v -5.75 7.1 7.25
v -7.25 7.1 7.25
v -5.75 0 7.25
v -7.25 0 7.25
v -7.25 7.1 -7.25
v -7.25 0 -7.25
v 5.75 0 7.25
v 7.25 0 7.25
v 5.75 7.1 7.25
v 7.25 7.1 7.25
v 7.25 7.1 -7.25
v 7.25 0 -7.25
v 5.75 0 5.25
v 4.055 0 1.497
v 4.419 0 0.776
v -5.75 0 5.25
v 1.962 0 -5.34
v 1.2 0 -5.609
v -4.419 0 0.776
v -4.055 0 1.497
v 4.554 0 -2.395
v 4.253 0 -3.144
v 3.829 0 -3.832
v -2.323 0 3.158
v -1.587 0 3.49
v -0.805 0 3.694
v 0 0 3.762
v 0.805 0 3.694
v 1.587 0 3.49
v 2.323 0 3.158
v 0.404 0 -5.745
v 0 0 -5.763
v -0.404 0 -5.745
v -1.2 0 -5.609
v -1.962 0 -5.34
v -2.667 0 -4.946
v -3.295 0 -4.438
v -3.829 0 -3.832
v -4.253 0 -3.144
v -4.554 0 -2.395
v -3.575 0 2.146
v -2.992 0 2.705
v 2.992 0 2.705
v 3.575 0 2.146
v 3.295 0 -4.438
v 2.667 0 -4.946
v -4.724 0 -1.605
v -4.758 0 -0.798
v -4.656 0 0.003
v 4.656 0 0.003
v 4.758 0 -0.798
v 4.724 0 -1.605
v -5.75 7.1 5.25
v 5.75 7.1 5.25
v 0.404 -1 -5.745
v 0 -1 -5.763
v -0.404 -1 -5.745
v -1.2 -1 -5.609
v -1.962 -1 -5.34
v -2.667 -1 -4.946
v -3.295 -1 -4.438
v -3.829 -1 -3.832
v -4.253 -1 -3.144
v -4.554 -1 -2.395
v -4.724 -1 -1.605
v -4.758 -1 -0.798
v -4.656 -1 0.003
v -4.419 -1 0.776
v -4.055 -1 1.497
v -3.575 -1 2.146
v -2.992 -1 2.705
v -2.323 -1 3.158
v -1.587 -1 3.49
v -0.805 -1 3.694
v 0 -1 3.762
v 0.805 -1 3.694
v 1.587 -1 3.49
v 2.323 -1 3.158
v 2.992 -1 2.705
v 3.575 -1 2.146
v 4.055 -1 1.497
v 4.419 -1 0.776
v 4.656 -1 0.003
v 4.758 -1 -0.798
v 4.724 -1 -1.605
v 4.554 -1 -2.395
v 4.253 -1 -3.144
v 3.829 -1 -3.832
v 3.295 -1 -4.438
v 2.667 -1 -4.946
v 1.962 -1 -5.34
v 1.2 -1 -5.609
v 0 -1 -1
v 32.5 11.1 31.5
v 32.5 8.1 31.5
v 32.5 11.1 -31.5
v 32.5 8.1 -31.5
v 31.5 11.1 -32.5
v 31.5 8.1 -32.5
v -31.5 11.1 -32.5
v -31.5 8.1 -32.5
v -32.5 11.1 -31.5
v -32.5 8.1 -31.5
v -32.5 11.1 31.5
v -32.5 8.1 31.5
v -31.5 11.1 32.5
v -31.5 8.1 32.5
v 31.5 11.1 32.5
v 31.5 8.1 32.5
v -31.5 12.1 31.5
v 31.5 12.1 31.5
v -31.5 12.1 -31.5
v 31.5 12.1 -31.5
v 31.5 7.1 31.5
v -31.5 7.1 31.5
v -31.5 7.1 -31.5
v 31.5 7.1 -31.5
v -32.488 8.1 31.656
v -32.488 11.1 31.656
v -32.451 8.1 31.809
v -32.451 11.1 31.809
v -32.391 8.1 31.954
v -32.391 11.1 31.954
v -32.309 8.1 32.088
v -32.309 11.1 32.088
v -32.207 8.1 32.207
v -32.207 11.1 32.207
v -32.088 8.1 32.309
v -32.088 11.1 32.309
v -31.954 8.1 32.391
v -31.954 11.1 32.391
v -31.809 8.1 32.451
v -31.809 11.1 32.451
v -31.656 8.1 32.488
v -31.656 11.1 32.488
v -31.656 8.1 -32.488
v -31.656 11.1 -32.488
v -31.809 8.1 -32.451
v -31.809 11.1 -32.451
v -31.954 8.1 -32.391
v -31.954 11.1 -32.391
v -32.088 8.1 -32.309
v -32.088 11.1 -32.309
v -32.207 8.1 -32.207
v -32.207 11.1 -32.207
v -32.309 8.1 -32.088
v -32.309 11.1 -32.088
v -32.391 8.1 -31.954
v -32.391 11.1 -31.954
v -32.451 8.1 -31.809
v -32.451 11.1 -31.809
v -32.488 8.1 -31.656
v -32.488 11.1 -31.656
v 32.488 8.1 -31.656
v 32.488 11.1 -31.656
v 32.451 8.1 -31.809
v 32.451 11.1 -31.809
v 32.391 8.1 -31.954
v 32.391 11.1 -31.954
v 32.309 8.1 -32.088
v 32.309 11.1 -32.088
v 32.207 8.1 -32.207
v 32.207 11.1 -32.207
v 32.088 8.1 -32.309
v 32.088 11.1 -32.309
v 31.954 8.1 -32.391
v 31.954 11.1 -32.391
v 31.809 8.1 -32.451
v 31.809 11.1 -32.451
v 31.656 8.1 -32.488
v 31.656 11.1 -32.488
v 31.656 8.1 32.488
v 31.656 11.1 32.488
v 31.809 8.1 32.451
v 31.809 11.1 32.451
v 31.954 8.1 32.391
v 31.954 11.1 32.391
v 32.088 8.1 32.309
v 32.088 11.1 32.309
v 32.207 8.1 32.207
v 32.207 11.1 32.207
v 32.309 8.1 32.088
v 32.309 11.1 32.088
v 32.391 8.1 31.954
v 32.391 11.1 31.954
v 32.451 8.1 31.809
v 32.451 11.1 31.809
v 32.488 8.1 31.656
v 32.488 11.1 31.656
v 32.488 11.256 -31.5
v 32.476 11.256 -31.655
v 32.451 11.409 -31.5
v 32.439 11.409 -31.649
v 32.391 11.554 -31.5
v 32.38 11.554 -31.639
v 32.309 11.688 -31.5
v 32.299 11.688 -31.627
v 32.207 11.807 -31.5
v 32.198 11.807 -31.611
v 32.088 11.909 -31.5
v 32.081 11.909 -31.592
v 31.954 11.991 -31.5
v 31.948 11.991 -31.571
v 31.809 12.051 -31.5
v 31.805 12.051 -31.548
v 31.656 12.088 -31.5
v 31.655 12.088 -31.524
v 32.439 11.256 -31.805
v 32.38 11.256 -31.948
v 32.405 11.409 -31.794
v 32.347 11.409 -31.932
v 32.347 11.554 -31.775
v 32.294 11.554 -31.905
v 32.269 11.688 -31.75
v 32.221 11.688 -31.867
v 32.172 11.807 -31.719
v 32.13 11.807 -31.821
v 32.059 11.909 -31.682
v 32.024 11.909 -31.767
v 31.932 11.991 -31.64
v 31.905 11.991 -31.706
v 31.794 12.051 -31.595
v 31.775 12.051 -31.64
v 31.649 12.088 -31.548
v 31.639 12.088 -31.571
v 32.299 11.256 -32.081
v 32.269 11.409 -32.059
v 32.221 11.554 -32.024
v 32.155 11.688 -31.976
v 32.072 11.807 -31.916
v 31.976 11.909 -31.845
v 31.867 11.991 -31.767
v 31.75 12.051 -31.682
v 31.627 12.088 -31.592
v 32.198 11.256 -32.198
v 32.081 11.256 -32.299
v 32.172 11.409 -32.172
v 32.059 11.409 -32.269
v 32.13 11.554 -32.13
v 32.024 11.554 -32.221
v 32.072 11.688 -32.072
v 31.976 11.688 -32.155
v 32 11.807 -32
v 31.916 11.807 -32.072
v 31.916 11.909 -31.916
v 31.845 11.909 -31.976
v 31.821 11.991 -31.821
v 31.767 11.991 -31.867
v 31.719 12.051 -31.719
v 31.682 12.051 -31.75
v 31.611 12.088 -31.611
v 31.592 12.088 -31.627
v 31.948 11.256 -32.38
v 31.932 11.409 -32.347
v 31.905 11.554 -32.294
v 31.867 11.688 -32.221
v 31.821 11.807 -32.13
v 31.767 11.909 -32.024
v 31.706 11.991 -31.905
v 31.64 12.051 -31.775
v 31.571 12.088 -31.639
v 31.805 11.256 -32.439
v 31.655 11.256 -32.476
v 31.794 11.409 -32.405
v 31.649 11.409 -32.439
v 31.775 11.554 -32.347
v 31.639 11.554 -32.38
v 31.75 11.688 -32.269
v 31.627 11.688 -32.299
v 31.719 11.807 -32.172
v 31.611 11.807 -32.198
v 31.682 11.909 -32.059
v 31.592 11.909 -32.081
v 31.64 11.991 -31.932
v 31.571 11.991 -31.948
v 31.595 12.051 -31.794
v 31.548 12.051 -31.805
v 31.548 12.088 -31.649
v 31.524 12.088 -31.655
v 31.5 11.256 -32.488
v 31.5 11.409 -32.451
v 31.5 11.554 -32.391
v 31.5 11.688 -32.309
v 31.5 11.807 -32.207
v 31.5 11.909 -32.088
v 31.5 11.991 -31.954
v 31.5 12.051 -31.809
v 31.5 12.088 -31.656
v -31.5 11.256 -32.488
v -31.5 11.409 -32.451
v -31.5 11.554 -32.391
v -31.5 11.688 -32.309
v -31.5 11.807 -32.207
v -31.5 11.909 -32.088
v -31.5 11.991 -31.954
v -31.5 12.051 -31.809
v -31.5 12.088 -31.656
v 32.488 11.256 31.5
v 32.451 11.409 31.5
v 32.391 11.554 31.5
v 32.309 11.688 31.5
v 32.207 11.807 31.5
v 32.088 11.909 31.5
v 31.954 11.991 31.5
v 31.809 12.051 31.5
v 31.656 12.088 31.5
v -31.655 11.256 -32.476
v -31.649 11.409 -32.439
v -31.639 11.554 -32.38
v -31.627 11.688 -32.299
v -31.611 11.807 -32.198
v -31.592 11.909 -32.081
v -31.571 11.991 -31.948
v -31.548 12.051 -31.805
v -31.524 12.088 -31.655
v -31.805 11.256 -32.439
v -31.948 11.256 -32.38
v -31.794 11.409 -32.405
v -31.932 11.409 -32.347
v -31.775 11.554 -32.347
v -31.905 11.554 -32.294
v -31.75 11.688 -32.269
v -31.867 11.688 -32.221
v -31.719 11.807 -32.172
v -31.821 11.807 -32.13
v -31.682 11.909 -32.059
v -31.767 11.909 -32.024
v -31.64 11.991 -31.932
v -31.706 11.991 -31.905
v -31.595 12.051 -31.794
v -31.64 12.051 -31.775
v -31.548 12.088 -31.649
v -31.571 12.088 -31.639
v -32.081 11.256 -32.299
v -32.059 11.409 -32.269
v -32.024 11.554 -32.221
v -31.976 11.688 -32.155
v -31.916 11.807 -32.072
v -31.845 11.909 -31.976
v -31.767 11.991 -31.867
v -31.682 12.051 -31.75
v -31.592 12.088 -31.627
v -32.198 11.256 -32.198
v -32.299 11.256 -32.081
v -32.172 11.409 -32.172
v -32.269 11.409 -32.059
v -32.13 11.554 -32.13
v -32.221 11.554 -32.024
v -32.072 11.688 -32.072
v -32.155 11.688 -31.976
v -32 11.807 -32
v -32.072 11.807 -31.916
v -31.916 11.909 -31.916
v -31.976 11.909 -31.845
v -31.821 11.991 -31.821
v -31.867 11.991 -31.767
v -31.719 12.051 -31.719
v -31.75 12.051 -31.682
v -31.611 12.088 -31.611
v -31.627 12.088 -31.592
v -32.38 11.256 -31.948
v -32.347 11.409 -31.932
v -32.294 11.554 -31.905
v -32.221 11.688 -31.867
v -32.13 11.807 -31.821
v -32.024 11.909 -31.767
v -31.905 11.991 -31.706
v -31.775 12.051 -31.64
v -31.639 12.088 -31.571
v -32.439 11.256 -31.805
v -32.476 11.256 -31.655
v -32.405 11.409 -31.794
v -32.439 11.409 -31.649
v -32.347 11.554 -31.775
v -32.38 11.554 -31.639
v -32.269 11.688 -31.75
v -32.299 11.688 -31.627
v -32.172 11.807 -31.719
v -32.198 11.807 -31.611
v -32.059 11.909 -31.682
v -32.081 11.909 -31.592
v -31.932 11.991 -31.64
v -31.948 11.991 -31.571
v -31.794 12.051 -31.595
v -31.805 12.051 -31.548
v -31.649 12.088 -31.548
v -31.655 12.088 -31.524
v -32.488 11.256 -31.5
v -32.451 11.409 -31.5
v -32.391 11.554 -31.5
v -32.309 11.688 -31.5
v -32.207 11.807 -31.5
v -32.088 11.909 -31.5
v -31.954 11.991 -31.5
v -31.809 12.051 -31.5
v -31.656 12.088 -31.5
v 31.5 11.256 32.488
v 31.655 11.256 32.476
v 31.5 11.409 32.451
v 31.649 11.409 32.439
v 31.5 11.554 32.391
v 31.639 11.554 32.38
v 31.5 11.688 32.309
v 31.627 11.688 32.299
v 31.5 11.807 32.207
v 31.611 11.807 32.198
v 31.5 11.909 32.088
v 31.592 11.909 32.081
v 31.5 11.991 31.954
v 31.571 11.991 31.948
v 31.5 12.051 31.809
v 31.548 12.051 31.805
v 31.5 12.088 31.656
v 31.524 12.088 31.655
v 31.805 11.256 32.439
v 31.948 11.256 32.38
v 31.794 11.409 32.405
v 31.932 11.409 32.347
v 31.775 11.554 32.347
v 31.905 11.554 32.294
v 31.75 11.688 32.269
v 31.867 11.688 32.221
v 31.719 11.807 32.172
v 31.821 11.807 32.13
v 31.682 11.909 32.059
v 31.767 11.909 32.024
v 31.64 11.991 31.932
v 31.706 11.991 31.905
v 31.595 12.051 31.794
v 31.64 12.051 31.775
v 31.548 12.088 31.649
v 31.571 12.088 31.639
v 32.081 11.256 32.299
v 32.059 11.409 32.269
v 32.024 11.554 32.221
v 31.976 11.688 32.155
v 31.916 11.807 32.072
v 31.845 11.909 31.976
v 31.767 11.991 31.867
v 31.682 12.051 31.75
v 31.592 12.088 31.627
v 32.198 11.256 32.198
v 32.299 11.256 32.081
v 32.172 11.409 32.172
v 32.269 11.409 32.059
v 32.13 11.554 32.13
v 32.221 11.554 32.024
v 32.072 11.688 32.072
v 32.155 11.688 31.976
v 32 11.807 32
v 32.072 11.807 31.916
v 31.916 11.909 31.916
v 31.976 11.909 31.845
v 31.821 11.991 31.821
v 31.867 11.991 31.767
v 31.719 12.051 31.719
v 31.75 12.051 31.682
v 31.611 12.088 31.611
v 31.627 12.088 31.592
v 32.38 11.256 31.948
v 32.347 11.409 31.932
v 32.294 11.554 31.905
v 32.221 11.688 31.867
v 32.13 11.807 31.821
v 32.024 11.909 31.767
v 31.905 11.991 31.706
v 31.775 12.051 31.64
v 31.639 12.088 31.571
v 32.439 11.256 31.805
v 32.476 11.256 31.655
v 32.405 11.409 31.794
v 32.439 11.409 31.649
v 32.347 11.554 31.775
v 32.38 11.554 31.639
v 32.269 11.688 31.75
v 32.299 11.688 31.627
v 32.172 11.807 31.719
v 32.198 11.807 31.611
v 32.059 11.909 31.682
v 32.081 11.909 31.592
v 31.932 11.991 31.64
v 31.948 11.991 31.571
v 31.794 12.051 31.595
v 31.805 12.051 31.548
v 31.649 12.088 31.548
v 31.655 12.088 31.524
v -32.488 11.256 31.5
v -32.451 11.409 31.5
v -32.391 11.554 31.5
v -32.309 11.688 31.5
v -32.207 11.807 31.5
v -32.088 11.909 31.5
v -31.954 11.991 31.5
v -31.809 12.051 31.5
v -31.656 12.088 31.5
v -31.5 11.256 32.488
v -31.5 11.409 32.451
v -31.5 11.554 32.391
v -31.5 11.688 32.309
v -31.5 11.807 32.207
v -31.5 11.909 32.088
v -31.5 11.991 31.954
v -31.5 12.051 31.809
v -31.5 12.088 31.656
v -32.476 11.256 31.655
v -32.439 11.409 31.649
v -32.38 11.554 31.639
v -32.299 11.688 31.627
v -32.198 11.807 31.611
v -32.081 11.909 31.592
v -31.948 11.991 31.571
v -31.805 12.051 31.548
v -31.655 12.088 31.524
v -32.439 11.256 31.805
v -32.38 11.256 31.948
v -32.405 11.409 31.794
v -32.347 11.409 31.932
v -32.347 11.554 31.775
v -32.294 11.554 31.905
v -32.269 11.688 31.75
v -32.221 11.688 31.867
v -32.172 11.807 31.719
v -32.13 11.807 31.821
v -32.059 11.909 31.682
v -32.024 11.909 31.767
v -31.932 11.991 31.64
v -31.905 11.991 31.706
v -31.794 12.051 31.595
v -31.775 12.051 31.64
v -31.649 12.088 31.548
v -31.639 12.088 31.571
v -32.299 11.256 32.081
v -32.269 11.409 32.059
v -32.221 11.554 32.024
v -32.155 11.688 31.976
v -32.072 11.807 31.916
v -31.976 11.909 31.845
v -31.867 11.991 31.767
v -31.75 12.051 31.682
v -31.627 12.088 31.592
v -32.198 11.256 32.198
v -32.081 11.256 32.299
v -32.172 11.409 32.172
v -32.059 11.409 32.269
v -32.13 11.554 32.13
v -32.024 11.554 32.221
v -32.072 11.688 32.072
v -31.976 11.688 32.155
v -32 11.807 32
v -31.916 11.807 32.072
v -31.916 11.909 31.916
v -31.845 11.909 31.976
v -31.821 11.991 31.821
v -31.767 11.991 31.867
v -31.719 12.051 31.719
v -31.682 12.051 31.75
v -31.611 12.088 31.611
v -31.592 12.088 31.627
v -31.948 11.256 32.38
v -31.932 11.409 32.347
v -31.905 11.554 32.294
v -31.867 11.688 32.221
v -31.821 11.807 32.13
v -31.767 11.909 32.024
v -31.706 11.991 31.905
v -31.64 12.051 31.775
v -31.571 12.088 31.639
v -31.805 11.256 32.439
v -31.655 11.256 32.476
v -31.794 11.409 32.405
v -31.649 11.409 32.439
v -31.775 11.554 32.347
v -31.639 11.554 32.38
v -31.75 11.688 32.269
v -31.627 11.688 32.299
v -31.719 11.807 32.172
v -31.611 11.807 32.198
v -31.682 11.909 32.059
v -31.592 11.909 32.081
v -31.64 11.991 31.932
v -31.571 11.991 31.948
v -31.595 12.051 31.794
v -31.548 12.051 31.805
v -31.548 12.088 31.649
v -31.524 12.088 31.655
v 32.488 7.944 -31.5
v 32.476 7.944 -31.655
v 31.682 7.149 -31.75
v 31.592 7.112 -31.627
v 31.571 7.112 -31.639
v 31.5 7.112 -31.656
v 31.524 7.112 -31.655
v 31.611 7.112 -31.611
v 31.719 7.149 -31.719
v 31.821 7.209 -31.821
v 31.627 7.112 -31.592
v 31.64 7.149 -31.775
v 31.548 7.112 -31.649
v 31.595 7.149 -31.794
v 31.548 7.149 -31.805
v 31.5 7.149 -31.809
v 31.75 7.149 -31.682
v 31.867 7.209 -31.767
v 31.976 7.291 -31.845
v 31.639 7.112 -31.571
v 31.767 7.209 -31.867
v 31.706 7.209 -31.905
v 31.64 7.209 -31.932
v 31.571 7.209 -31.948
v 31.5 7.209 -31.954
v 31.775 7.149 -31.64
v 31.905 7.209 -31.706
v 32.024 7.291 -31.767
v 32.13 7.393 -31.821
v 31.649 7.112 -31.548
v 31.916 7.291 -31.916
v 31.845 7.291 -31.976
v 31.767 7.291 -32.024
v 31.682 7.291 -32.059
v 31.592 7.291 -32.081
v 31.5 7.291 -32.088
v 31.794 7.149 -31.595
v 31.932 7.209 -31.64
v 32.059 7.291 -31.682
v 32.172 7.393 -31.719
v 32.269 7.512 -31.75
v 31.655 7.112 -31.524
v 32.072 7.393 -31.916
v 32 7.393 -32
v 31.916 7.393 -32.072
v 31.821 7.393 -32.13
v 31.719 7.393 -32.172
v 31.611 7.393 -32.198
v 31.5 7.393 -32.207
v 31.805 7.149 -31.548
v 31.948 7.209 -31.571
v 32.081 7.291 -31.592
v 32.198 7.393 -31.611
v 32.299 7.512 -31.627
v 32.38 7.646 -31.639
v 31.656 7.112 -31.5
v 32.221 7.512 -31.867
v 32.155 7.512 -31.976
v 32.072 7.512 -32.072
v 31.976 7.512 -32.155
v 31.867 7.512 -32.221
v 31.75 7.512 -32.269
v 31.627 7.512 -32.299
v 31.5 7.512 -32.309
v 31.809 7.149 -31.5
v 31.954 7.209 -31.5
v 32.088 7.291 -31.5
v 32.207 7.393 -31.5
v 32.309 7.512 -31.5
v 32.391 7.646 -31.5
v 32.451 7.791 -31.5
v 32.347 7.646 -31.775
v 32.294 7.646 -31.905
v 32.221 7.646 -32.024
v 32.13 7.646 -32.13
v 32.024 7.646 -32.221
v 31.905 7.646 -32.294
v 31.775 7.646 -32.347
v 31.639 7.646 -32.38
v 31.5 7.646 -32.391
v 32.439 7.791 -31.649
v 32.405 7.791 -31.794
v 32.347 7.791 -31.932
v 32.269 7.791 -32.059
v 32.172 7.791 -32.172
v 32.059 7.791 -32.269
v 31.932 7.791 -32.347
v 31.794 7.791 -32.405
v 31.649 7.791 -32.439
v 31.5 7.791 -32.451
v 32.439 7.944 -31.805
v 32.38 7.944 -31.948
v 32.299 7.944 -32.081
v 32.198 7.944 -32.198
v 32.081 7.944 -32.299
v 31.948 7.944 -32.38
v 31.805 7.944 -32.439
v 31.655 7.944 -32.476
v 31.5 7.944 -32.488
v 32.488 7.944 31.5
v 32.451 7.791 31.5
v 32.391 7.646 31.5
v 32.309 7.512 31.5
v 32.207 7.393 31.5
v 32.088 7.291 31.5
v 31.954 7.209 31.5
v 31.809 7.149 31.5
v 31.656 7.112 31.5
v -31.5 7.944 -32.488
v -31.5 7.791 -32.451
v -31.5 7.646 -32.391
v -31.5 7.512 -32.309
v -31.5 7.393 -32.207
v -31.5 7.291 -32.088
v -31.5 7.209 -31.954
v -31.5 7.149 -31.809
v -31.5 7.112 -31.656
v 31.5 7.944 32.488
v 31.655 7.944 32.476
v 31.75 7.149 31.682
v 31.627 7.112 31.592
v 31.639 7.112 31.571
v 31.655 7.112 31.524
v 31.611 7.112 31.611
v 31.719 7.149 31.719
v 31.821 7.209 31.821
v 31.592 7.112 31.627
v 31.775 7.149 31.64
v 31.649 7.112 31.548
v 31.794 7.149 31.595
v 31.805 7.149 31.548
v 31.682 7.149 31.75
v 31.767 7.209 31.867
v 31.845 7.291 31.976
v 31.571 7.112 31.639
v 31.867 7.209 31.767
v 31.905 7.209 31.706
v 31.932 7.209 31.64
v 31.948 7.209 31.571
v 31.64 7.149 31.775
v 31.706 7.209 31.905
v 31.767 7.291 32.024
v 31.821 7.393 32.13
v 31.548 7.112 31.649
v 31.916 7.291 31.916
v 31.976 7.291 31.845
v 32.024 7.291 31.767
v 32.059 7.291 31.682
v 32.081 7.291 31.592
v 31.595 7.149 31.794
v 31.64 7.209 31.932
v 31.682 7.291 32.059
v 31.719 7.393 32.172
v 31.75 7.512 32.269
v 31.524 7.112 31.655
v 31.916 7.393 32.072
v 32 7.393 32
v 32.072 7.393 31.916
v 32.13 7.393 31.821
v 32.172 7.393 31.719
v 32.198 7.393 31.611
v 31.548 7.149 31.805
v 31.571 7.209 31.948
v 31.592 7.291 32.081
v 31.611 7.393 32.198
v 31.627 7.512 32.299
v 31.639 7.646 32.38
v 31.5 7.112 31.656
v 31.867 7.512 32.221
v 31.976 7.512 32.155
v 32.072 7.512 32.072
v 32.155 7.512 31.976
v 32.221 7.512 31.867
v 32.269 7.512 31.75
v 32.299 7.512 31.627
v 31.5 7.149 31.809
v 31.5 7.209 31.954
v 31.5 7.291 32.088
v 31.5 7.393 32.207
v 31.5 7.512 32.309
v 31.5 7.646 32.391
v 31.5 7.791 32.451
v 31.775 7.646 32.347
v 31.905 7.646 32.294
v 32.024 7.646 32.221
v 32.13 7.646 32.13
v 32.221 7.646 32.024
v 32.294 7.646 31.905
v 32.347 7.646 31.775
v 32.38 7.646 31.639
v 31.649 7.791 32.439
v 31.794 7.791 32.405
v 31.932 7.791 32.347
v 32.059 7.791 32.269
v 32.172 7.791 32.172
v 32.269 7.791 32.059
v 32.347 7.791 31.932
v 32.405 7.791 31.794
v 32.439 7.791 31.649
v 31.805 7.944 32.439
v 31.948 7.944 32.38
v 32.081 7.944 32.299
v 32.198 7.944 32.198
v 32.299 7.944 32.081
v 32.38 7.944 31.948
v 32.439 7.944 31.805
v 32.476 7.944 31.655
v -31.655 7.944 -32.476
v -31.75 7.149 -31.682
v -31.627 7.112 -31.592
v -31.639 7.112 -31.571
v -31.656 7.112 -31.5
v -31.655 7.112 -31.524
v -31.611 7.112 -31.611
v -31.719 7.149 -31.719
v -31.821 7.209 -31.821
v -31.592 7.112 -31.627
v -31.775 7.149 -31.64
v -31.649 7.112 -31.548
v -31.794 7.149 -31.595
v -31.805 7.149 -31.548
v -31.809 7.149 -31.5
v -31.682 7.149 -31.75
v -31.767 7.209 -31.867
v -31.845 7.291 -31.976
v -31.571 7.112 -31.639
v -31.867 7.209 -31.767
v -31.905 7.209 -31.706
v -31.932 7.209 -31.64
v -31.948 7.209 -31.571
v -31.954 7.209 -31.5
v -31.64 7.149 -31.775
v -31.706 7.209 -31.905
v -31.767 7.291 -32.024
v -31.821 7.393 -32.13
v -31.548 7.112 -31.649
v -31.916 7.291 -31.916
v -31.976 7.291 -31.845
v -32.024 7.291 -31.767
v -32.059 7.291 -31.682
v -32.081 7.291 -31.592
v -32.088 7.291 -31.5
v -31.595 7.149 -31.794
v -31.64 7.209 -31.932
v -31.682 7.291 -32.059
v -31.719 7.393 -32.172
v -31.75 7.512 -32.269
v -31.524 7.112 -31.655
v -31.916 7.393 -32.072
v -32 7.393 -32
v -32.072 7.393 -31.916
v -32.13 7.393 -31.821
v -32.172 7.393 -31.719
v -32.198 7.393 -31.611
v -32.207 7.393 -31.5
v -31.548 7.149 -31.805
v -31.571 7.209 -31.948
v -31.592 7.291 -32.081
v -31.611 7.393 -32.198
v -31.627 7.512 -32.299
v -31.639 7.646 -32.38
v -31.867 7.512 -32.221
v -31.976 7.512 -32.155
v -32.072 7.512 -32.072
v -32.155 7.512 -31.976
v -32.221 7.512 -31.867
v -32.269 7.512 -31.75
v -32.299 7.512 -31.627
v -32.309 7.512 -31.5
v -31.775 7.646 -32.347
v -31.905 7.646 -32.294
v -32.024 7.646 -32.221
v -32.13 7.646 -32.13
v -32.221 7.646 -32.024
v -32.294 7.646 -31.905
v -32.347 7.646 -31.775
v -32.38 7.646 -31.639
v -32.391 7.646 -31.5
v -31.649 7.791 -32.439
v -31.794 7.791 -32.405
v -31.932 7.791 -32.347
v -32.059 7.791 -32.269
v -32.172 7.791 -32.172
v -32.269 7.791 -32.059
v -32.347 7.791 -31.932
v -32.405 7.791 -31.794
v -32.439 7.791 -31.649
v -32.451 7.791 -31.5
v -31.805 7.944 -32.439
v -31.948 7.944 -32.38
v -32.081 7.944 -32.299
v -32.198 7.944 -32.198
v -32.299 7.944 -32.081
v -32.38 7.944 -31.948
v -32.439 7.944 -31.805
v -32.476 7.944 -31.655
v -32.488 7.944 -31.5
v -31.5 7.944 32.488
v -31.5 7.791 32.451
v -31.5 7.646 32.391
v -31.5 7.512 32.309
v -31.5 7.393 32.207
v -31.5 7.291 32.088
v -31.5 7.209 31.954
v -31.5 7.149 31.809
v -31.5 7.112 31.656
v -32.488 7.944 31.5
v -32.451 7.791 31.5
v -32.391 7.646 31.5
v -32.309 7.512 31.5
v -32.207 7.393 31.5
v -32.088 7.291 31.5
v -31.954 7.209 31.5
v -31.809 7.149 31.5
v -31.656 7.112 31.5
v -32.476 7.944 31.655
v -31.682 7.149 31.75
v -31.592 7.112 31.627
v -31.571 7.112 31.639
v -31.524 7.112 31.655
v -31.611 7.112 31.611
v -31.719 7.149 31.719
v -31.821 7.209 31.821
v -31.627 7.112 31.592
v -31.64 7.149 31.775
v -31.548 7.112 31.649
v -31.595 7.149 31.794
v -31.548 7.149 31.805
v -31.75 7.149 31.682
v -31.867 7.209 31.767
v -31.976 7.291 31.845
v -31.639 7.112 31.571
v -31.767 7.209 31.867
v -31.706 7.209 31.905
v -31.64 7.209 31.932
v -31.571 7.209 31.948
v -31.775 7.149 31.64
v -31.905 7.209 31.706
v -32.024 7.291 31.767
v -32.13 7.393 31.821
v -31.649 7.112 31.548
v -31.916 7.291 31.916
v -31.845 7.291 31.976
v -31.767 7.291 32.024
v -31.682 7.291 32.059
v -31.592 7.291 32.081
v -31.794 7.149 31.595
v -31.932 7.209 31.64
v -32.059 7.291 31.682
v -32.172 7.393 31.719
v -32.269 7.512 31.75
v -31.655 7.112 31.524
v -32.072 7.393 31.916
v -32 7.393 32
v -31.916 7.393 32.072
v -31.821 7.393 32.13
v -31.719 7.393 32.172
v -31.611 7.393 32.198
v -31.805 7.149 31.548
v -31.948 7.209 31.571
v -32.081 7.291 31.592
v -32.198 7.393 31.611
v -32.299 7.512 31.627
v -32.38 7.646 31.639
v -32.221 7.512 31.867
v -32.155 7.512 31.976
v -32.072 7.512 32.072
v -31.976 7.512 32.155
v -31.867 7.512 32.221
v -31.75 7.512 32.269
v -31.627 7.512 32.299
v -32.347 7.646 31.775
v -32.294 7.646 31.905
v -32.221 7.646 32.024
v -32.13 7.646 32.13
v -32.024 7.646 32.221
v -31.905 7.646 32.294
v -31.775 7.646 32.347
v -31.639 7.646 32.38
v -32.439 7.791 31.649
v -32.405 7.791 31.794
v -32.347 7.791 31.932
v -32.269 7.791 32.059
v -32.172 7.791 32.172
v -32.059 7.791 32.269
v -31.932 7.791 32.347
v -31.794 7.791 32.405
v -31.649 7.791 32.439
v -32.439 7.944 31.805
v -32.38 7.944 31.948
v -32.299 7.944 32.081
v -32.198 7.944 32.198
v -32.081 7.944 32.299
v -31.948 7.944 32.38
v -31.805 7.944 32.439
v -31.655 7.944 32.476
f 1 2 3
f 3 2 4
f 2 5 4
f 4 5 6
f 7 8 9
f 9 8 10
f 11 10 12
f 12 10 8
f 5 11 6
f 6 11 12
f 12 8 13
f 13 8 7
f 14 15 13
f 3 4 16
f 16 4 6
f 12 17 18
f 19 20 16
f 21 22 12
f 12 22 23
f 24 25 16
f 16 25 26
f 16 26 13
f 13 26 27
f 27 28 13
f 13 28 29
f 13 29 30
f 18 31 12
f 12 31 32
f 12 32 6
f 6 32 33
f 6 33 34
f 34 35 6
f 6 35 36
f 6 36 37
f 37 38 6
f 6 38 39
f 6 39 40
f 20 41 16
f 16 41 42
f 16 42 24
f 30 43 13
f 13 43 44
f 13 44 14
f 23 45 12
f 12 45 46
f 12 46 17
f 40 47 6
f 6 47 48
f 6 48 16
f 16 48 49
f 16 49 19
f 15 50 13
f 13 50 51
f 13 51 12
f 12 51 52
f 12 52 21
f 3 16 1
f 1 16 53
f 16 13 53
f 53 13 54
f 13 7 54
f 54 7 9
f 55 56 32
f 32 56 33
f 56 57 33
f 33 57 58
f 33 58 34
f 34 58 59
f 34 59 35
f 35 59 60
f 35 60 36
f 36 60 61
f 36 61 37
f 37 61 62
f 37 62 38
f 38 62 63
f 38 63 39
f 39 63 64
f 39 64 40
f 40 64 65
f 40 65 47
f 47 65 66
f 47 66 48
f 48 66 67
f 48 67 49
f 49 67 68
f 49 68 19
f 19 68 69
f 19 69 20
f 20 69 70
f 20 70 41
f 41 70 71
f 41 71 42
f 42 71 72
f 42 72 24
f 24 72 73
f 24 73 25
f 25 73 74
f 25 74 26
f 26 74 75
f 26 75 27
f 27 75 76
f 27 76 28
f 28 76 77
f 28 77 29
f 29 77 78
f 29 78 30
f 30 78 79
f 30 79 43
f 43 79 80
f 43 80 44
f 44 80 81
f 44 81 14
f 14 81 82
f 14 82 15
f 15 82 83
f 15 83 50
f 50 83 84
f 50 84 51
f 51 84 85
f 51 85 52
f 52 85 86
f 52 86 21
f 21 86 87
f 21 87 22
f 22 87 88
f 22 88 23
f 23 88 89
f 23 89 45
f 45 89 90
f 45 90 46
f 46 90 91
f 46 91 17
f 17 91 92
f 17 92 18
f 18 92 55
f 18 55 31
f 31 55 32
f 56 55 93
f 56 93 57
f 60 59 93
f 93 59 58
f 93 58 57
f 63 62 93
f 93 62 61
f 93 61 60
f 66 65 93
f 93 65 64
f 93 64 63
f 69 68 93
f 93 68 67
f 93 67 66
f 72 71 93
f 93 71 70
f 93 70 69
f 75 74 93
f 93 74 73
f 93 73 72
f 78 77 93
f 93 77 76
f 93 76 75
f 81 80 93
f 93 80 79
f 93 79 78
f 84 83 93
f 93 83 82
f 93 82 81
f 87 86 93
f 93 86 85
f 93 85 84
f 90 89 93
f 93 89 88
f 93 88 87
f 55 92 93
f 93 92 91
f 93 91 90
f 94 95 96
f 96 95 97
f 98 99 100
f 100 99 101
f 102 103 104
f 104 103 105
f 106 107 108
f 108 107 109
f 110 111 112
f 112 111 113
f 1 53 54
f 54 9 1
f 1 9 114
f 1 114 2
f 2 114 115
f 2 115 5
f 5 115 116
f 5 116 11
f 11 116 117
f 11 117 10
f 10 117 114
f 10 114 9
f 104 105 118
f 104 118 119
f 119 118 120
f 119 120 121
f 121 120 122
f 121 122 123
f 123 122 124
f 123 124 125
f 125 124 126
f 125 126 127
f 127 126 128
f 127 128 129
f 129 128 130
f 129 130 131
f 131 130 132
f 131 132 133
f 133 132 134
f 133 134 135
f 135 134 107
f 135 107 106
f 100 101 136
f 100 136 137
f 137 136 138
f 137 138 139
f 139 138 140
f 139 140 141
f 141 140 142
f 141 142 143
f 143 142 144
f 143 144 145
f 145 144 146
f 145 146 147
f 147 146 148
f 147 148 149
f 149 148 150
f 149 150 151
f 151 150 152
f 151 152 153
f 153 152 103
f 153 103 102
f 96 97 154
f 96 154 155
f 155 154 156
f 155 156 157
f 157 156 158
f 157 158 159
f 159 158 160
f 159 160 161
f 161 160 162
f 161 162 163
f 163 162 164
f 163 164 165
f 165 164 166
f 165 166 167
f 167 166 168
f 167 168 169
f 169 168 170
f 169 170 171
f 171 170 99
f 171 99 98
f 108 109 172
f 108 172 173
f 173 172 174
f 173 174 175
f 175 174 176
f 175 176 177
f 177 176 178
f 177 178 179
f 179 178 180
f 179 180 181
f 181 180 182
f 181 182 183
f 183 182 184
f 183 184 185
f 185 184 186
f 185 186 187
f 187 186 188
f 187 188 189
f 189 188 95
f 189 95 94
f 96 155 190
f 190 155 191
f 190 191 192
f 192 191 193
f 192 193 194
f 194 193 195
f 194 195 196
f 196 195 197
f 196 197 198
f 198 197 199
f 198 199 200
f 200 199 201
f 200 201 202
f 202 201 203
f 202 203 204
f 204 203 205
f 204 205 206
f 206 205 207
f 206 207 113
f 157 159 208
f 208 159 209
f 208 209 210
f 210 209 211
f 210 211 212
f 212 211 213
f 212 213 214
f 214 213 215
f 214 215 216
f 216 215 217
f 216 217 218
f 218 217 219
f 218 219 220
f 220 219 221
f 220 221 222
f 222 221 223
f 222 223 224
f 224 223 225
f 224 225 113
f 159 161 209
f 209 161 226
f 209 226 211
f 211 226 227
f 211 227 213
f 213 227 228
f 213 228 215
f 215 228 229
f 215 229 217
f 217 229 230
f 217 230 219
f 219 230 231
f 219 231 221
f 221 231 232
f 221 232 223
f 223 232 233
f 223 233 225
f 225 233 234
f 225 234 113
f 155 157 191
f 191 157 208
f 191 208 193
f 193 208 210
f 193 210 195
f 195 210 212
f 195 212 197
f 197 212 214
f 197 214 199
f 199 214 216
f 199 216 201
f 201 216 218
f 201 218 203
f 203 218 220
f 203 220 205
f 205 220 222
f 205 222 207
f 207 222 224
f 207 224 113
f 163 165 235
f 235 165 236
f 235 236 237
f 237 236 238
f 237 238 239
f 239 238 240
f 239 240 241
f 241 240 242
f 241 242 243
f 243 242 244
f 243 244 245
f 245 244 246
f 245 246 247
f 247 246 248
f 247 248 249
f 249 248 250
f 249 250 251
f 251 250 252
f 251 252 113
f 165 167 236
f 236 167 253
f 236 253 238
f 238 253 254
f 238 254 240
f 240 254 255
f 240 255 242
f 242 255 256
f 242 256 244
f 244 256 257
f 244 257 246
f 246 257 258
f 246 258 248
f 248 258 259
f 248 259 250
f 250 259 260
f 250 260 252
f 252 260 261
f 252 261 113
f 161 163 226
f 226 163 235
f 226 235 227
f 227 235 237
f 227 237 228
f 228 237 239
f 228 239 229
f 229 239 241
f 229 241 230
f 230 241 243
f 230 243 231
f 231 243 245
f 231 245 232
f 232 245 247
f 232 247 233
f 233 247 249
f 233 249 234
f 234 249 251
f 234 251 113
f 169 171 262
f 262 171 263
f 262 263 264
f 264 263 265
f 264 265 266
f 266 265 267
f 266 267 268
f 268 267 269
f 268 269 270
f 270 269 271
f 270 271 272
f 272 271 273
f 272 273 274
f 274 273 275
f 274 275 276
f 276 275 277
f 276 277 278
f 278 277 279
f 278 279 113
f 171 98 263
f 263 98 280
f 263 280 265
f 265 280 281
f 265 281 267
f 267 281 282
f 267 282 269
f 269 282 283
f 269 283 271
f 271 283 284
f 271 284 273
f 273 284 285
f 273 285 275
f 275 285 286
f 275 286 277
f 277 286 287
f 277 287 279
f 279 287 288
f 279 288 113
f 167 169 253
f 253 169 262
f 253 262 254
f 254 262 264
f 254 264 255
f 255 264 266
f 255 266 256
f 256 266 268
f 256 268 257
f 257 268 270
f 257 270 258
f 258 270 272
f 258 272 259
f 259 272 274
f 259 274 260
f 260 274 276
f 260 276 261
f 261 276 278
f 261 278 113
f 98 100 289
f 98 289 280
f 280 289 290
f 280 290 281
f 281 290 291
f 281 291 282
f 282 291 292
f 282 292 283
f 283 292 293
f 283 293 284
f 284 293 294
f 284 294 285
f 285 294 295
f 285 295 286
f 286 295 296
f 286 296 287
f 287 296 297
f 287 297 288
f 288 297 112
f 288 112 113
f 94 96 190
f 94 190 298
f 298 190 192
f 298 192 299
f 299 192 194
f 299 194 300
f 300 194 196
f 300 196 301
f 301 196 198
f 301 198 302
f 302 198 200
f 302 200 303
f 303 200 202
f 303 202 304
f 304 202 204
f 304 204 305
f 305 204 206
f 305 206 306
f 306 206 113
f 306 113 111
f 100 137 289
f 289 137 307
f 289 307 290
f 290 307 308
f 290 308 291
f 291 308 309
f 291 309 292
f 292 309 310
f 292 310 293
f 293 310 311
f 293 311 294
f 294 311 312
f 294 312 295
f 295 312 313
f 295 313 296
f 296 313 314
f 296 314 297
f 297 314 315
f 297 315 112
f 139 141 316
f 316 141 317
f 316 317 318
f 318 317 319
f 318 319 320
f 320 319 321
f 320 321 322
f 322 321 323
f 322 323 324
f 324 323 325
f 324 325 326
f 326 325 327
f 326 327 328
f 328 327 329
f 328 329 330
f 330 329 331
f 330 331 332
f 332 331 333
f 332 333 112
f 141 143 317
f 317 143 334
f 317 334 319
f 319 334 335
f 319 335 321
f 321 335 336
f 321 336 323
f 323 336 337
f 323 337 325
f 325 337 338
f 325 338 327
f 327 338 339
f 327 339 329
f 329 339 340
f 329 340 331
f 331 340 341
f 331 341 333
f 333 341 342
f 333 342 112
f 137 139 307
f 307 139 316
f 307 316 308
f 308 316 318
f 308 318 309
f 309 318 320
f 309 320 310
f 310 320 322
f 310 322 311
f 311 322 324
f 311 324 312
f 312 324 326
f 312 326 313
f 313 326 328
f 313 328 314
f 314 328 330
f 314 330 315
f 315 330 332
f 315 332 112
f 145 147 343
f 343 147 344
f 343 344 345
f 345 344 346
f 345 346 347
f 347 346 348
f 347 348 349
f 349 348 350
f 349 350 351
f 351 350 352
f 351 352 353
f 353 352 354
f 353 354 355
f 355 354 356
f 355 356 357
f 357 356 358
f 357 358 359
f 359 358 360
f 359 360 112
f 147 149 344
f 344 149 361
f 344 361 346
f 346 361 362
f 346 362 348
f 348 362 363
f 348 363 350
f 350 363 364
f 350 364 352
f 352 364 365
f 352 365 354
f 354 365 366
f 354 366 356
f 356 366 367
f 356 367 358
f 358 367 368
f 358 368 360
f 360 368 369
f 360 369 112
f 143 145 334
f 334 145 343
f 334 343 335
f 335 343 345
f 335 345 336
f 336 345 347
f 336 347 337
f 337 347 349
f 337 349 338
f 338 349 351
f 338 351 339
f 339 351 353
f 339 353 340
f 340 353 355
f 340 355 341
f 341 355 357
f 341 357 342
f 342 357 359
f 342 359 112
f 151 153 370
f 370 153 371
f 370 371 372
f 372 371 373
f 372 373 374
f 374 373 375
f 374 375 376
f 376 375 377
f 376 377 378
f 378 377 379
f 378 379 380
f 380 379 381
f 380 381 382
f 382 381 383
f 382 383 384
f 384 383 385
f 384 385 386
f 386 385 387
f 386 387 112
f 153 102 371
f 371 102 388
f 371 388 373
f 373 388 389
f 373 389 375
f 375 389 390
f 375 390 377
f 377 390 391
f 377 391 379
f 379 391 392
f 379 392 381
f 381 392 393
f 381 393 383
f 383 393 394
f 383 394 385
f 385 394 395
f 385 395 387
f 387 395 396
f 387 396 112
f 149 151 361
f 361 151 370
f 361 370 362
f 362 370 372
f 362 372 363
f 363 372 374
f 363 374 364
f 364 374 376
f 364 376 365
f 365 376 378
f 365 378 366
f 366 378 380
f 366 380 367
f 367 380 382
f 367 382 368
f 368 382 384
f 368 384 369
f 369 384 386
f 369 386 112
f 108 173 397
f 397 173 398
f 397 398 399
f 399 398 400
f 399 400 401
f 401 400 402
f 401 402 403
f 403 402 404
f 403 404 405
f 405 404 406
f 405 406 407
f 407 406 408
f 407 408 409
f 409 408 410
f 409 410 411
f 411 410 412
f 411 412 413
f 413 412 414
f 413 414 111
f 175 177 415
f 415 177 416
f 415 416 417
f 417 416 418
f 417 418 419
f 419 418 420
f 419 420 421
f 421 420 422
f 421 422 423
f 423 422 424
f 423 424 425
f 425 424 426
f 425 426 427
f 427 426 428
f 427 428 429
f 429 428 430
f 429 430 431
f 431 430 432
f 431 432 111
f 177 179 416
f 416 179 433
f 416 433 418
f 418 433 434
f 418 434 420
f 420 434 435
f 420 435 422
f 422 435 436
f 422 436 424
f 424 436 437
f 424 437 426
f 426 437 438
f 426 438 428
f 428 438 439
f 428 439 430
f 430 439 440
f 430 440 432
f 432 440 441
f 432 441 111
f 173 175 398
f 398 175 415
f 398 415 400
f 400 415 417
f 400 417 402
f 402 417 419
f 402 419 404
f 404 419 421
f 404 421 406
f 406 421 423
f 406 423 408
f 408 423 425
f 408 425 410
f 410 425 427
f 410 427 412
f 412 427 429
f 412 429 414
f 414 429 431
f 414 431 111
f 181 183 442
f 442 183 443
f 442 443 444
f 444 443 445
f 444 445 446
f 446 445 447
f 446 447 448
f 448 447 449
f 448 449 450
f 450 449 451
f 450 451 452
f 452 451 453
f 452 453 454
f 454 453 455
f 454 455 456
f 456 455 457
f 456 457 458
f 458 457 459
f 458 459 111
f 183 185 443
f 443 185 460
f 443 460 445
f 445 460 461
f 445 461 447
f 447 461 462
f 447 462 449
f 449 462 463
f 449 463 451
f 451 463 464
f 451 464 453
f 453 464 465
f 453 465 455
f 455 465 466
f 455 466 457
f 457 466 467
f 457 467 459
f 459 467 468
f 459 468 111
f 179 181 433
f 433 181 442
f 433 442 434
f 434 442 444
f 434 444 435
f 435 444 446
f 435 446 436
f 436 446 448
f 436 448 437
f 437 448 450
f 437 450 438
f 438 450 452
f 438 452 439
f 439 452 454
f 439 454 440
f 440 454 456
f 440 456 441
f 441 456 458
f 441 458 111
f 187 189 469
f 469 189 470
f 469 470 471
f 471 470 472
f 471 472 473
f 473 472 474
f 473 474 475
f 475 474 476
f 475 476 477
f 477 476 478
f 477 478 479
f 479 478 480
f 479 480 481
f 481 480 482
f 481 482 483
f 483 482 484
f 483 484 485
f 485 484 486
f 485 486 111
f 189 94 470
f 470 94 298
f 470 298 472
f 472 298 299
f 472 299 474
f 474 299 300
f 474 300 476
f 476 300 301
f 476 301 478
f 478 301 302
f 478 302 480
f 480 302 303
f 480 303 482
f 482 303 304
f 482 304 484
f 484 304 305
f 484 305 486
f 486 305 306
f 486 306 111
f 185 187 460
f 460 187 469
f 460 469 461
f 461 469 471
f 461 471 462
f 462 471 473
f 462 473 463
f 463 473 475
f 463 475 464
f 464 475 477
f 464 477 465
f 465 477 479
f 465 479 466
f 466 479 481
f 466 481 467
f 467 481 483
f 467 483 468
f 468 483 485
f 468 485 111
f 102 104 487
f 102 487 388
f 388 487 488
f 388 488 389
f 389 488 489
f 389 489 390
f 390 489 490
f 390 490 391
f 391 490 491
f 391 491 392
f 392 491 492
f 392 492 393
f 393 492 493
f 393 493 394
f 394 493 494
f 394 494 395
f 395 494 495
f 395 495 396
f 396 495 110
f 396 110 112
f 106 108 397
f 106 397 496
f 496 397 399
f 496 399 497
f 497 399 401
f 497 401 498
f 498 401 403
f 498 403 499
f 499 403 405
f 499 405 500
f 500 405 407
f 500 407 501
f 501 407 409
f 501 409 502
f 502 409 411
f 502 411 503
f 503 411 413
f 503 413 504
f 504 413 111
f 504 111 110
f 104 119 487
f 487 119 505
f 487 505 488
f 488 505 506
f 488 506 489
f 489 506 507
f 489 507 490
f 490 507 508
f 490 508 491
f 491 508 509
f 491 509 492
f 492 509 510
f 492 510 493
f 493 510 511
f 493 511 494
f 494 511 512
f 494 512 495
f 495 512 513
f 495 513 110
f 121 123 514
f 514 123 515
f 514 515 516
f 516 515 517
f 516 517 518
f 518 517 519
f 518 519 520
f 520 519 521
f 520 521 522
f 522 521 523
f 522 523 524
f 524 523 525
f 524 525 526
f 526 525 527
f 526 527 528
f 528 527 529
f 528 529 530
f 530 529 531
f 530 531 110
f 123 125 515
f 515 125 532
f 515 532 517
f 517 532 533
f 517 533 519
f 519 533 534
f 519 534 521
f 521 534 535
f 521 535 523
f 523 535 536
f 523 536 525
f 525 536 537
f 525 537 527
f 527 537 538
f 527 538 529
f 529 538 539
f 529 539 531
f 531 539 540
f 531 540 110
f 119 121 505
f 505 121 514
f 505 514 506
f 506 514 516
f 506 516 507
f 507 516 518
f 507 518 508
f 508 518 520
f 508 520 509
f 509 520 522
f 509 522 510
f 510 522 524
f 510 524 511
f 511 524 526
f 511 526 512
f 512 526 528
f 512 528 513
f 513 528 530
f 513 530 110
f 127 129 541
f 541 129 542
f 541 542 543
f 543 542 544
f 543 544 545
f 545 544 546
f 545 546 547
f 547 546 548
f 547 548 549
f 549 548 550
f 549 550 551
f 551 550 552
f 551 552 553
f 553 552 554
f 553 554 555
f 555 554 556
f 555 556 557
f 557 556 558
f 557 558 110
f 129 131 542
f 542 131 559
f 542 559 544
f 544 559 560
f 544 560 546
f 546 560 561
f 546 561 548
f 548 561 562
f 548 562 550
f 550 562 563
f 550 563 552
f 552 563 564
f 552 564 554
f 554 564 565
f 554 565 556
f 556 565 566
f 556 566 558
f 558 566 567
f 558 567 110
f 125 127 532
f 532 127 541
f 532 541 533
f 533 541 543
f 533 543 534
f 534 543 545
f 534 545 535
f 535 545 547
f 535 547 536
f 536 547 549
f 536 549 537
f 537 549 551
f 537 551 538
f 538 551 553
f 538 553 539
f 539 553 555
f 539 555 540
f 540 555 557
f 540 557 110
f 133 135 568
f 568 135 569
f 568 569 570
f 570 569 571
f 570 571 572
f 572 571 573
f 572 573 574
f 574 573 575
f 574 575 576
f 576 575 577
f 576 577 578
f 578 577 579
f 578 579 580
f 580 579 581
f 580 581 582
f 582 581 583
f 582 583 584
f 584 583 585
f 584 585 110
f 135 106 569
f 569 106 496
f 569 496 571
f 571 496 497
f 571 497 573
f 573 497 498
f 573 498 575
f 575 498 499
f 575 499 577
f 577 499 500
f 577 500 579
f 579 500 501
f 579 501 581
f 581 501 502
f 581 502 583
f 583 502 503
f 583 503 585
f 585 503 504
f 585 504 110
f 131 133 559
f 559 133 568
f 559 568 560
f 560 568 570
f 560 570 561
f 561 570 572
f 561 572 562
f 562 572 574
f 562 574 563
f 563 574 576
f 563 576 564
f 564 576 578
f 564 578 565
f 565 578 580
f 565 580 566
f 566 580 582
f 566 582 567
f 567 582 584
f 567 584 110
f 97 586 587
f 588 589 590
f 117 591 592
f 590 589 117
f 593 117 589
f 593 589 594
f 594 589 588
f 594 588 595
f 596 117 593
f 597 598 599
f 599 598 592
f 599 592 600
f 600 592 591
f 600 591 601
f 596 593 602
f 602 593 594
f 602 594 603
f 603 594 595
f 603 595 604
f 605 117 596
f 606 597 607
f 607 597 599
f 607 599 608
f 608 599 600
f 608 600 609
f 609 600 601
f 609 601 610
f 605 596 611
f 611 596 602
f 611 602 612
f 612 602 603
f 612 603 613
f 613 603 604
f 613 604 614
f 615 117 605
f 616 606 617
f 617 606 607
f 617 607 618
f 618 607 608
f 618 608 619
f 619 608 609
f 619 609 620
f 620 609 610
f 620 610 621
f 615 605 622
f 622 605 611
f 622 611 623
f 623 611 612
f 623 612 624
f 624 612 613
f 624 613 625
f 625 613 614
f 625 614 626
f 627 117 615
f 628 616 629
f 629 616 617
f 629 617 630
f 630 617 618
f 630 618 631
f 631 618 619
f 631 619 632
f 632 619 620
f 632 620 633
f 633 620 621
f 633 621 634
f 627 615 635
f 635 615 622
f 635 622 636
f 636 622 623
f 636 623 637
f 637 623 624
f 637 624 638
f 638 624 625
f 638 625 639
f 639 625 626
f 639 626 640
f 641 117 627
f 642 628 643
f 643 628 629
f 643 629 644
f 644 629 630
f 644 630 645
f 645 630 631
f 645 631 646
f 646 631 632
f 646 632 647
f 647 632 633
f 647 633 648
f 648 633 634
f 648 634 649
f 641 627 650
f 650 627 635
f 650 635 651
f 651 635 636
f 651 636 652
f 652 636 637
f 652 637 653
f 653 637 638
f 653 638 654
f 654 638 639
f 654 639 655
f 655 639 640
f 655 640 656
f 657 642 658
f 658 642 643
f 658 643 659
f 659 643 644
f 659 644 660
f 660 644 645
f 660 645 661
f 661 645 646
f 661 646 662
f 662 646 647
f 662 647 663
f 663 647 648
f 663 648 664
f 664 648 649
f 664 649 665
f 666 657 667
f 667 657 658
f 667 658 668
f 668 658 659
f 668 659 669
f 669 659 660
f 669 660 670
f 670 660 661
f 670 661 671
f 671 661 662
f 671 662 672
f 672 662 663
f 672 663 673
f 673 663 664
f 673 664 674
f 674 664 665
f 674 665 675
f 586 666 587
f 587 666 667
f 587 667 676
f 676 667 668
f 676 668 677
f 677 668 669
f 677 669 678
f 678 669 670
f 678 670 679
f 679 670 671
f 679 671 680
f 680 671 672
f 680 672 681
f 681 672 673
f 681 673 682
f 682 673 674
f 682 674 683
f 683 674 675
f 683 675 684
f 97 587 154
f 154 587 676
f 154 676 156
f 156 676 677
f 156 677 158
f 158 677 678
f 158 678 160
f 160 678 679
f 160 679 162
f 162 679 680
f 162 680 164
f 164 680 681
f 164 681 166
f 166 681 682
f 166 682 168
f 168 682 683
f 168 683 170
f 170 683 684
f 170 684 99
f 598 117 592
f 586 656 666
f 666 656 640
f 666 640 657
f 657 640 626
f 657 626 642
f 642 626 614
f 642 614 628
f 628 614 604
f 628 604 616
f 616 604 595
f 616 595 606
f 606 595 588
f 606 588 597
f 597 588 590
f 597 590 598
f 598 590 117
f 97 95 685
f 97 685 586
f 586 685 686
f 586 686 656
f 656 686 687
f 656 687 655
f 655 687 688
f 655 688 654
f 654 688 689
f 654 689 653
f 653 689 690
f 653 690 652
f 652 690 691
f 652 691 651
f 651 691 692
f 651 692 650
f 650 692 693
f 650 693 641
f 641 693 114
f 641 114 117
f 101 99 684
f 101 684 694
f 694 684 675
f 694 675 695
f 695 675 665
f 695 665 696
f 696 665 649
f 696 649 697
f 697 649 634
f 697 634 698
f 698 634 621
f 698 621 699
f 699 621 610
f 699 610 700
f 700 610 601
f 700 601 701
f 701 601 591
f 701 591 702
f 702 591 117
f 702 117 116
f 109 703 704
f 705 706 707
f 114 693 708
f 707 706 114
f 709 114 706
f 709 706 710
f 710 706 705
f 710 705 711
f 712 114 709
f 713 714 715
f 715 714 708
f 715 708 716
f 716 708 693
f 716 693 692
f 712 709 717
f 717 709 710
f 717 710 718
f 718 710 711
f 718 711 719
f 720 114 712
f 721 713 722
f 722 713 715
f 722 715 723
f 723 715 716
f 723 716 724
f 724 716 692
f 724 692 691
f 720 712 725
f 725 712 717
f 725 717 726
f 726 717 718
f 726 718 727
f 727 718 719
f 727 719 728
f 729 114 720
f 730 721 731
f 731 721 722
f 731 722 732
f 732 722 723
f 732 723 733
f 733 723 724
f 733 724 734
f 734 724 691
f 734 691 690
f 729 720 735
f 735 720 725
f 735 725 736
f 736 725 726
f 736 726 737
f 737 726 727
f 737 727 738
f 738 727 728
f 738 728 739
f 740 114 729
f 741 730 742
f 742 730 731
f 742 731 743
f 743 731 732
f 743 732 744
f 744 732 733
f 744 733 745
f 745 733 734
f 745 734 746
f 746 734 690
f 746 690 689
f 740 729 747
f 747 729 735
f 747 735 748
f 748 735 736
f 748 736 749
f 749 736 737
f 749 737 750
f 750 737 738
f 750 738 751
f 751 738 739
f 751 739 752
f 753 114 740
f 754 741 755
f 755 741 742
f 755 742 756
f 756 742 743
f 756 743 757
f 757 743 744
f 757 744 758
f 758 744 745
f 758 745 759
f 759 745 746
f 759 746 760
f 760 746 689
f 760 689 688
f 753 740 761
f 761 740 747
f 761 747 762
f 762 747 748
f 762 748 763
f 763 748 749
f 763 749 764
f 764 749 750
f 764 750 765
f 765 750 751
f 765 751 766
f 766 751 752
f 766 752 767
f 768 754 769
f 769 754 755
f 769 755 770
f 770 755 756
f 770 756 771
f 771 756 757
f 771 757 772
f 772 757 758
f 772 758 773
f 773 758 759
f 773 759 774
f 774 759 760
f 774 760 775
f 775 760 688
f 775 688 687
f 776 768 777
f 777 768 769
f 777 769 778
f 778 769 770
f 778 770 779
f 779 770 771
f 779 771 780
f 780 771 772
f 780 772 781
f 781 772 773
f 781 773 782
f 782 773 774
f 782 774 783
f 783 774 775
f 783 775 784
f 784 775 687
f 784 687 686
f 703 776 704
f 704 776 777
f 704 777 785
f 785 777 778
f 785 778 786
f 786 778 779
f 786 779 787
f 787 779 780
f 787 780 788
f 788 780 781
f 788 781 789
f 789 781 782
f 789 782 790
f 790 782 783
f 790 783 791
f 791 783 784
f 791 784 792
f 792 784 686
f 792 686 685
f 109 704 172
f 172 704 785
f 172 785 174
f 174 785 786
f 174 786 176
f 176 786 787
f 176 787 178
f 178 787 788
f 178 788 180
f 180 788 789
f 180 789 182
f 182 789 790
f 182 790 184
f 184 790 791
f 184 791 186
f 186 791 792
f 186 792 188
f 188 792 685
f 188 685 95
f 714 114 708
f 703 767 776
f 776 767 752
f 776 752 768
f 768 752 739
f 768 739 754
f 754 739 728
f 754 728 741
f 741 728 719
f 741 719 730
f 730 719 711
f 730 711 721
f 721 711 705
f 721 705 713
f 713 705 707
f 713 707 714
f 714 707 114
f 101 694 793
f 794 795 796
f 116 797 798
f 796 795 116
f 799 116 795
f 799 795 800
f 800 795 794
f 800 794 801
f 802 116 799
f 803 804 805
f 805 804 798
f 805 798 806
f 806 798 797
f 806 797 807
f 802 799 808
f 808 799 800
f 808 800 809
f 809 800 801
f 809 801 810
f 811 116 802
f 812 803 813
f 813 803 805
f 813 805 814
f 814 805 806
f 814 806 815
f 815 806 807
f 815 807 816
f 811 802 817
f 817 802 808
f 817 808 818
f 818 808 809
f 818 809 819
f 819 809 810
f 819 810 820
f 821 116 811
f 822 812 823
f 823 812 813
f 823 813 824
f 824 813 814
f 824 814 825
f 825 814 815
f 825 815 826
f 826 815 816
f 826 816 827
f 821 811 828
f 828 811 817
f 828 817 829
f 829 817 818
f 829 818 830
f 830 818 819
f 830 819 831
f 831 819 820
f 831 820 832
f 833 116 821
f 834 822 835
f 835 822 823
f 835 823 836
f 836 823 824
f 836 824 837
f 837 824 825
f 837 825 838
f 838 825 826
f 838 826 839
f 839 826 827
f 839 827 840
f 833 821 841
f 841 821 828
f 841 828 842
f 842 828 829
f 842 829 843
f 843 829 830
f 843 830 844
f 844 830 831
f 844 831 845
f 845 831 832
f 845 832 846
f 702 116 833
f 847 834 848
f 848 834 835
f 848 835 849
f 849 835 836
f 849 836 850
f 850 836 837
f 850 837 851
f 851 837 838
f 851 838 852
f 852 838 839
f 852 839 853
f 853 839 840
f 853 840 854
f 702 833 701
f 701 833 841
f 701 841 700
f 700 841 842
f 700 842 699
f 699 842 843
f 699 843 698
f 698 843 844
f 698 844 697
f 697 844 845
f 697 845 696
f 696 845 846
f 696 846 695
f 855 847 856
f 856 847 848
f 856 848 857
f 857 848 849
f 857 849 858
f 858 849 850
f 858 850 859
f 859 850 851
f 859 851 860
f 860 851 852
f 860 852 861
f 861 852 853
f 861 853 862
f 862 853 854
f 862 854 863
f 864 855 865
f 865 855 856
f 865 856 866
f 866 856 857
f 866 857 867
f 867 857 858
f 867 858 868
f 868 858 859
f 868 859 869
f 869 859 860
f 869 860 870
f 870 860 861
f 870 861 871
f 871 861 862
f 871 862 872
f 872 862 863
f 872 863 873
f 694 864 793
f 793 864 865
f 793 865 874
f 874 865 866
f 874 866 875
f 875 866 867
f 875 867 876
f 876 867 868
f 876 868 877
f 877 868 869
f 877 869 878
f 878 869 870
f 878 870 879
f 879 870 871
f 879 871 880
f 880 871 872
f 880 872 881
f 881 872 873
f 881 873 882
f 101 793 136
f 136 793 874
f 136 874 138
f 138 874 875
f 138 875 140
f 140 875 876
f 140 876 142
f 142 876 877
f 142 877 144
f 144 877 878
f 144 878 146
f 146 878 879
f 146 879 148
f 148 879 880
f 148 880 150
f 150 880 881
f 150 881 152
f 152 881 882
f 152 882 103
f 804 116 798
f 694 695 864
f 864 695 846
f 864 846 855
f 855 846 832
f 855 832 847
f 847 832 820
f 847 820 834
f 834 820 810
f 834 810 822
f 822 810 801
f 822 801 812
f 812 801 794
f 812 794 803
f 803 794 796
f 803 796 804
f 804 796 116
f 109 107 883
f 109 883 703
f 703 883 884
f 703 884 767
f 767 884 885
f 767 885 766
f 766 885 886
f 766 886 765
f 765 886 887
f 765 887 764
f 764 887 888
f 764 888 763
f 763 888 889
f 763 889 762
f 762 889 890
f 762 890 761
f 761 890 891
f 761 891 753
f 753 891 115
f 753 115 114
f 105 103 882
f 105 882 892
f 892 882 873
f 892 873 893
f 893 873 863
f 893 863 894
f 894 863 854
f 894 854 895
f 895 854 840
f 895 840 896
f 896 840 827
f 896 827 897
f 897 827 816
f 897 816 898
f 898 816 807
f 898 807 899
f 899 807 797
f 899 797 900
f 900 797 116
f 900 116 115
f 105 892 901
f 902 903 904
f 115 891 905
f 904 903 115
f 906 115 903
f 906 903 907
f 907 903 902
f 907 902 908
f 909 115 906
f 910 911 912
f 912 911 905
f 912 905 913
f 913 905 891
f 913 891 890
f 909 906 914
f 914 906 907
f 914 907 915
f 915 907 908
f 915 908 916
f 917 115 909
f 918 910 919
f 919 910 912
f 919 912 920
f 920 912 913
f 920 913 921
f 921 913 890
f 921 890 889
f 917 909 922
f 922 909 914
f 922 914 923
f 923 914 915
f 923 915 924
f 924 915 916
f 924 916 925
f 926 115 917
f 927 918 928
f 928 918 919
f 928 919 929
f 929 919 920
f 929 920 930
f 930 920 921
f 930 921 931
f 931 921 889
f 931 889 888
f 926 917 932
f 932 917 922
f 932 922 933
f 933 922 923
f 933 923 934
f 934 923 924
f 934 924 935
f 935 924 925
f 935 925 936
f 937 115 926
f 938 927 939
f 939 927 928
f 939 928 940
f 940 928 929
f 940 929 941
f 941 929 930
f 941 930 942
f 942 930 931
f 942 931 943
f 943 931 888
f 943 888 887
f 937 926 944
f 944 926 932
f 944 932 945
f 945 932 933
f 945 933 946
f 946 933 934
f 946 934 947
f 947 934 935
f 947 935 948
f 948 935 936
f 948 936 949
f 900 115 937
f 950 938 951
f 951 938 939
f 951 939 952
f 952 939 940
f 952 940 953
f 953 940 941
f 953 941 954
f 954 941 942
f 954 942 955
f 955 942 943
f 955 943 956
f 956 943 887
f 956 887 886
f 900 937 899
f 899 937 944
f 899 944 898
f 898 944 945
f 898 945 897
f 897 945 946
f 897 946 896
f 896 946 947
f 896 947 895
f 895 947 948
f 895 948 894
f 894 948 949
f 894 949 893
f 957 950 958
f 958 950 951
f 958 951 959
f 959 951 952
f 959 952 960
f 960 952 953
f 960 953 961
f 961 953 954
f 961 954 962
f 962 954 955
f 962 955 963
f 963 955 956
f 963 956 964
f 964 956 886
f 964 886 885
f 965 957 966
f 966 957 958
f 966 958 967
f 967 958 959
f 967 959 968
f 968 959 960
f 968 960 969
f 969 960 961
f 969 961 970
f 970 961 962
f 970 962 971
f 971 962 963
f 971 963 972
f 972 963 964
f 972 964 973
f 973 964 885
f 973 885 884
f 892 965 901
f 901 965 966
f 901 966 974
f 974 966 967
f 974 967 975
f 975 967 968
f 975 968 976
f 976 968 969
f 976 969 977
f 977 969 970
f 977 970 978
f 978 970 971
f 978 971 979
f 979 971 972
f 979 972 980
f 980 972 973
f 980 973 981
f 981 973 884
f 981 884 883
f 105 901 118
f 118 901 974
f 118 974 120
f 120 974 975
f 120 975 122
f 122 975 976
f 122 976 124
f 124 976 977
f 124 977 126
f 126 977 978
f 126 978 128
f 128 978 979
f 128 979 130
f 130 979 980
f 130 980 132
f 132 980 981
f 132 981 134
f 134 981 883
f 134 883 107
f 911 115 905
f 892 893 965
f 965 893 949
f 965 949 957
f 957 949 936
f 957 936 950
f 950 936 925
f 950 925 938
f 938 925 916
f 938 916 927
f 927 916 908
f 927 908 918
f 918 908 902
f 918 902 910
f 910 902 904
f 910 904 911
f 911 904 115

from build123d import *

# Parameters (mm, degrees)
SKETCH1_W           = 14.5
SKETCH1_H           = 14.5
BOSS_EXTRUDE1_DEPTH = 7.1
SKETCH2_W           = 11.5
SKETCH2_H           = 2
CUT_EXTRUDE1_DEPTH  = 13.471367207
SKETCH5_R           = 4.7625
BOSS_EXTRUDE2_DEPTH = 1
SKETCH6_W           = 65
SKETCH6_H           = 65
BOSS_EXTRUDE3_DEPTH = 5
FILLET1_R           = 1
FILLET2_R           = 1


with BuildPart() as part:
    # Sketch1 → Boss-Extrude1 (new body)
    with BuildSketch(Plane(origin=(0, 0, 0), x_dir=(1, 0, 0), z_dir=(0, 1, 0))):
        Rectangle(SKETCH1_W, SKETCH1_H)
    extrude(amount=BOSS_EXTRUDE1_DEPTH)

    # Sketch2 → Cut-Extrude1 (cut, through all)
    with BuildSketch(Plane(origin=(0, 7.1, 0), x_dir=(1, 0, 0), z_dir=(0, 1, 0))):
        with Locations((0, -6.25)):
            Rectangle(SKETCH2_W, SKETCH2_H)
    extrude(amount=-CUT_EXTRUDE1_DEPTH, mode=Mode.SUBTRACT)

    # Sketch5 → Boss-Extrude2 (add)
    with BuildSketch(Plane.XZ):
        with Locations(Location((0, -1, 0), (0, 0, 270))):
            Circle(SKETCH5_R)
    extrude(amount=BOSS_EXTRUDE2_DEPTH)

    # Sketch6 → Boss-Extrude3 (add)
    with BuildSketch(Plane(origin=(0, 7.1, 0), x_dir=(1, 0, 0), z_dir=(0, 1, 0))):
        Rectangle(SKETCH6_W, SKETCH6_H)
    extrude(amount=BOSS_EXTRUDE3_DEPTH)

    # Fillet1
    fillet1_edges = [part.edges().sort_by_distance(p)[0] for p in [
        (32.5, 9.6, 32.5),
        (32.5, 9.6, -32.5),
        (-32.5, 9.6, -32.5),
        (-32.5, 9.6, 32.5),
    ]]
    fillet(fillet1_edges, radius=FILLET1_R)

    # Fillet2
    fillet2_edges = [part.edges().sort_by_distance(p)[0] for p in [
        (0, 7.1, 32.5),
        (0, 12.1, 32.5),
        (32.5, 7.1, 0),
        (-32.5, 7.1, 0),
        (0, 7.1, -32.5),
        (32.207106781, 7.1, 32.207106781),
        (32.207106781, 7.1, -32.207106781),
        (-32.207106781, 7.1, -32.207106781),
        (-32.207106781, 7.1, 32.207106781),
        (-32.5, 12.1, 0),
        (32.5, 12.1, 0),
        (0, 12.1, -32.5),
        (32.207106781, 12.1, 32.207106781),
        (32.207106781, 12.1, -32.207106781),
        (-32.207106781, 12.1, -32.207106781),
        (-32.207106781, 12.1, 32.207106781),
    ]]
    fillet(fillet2_edges, radius=FILLET2_R)


solid = part.part
